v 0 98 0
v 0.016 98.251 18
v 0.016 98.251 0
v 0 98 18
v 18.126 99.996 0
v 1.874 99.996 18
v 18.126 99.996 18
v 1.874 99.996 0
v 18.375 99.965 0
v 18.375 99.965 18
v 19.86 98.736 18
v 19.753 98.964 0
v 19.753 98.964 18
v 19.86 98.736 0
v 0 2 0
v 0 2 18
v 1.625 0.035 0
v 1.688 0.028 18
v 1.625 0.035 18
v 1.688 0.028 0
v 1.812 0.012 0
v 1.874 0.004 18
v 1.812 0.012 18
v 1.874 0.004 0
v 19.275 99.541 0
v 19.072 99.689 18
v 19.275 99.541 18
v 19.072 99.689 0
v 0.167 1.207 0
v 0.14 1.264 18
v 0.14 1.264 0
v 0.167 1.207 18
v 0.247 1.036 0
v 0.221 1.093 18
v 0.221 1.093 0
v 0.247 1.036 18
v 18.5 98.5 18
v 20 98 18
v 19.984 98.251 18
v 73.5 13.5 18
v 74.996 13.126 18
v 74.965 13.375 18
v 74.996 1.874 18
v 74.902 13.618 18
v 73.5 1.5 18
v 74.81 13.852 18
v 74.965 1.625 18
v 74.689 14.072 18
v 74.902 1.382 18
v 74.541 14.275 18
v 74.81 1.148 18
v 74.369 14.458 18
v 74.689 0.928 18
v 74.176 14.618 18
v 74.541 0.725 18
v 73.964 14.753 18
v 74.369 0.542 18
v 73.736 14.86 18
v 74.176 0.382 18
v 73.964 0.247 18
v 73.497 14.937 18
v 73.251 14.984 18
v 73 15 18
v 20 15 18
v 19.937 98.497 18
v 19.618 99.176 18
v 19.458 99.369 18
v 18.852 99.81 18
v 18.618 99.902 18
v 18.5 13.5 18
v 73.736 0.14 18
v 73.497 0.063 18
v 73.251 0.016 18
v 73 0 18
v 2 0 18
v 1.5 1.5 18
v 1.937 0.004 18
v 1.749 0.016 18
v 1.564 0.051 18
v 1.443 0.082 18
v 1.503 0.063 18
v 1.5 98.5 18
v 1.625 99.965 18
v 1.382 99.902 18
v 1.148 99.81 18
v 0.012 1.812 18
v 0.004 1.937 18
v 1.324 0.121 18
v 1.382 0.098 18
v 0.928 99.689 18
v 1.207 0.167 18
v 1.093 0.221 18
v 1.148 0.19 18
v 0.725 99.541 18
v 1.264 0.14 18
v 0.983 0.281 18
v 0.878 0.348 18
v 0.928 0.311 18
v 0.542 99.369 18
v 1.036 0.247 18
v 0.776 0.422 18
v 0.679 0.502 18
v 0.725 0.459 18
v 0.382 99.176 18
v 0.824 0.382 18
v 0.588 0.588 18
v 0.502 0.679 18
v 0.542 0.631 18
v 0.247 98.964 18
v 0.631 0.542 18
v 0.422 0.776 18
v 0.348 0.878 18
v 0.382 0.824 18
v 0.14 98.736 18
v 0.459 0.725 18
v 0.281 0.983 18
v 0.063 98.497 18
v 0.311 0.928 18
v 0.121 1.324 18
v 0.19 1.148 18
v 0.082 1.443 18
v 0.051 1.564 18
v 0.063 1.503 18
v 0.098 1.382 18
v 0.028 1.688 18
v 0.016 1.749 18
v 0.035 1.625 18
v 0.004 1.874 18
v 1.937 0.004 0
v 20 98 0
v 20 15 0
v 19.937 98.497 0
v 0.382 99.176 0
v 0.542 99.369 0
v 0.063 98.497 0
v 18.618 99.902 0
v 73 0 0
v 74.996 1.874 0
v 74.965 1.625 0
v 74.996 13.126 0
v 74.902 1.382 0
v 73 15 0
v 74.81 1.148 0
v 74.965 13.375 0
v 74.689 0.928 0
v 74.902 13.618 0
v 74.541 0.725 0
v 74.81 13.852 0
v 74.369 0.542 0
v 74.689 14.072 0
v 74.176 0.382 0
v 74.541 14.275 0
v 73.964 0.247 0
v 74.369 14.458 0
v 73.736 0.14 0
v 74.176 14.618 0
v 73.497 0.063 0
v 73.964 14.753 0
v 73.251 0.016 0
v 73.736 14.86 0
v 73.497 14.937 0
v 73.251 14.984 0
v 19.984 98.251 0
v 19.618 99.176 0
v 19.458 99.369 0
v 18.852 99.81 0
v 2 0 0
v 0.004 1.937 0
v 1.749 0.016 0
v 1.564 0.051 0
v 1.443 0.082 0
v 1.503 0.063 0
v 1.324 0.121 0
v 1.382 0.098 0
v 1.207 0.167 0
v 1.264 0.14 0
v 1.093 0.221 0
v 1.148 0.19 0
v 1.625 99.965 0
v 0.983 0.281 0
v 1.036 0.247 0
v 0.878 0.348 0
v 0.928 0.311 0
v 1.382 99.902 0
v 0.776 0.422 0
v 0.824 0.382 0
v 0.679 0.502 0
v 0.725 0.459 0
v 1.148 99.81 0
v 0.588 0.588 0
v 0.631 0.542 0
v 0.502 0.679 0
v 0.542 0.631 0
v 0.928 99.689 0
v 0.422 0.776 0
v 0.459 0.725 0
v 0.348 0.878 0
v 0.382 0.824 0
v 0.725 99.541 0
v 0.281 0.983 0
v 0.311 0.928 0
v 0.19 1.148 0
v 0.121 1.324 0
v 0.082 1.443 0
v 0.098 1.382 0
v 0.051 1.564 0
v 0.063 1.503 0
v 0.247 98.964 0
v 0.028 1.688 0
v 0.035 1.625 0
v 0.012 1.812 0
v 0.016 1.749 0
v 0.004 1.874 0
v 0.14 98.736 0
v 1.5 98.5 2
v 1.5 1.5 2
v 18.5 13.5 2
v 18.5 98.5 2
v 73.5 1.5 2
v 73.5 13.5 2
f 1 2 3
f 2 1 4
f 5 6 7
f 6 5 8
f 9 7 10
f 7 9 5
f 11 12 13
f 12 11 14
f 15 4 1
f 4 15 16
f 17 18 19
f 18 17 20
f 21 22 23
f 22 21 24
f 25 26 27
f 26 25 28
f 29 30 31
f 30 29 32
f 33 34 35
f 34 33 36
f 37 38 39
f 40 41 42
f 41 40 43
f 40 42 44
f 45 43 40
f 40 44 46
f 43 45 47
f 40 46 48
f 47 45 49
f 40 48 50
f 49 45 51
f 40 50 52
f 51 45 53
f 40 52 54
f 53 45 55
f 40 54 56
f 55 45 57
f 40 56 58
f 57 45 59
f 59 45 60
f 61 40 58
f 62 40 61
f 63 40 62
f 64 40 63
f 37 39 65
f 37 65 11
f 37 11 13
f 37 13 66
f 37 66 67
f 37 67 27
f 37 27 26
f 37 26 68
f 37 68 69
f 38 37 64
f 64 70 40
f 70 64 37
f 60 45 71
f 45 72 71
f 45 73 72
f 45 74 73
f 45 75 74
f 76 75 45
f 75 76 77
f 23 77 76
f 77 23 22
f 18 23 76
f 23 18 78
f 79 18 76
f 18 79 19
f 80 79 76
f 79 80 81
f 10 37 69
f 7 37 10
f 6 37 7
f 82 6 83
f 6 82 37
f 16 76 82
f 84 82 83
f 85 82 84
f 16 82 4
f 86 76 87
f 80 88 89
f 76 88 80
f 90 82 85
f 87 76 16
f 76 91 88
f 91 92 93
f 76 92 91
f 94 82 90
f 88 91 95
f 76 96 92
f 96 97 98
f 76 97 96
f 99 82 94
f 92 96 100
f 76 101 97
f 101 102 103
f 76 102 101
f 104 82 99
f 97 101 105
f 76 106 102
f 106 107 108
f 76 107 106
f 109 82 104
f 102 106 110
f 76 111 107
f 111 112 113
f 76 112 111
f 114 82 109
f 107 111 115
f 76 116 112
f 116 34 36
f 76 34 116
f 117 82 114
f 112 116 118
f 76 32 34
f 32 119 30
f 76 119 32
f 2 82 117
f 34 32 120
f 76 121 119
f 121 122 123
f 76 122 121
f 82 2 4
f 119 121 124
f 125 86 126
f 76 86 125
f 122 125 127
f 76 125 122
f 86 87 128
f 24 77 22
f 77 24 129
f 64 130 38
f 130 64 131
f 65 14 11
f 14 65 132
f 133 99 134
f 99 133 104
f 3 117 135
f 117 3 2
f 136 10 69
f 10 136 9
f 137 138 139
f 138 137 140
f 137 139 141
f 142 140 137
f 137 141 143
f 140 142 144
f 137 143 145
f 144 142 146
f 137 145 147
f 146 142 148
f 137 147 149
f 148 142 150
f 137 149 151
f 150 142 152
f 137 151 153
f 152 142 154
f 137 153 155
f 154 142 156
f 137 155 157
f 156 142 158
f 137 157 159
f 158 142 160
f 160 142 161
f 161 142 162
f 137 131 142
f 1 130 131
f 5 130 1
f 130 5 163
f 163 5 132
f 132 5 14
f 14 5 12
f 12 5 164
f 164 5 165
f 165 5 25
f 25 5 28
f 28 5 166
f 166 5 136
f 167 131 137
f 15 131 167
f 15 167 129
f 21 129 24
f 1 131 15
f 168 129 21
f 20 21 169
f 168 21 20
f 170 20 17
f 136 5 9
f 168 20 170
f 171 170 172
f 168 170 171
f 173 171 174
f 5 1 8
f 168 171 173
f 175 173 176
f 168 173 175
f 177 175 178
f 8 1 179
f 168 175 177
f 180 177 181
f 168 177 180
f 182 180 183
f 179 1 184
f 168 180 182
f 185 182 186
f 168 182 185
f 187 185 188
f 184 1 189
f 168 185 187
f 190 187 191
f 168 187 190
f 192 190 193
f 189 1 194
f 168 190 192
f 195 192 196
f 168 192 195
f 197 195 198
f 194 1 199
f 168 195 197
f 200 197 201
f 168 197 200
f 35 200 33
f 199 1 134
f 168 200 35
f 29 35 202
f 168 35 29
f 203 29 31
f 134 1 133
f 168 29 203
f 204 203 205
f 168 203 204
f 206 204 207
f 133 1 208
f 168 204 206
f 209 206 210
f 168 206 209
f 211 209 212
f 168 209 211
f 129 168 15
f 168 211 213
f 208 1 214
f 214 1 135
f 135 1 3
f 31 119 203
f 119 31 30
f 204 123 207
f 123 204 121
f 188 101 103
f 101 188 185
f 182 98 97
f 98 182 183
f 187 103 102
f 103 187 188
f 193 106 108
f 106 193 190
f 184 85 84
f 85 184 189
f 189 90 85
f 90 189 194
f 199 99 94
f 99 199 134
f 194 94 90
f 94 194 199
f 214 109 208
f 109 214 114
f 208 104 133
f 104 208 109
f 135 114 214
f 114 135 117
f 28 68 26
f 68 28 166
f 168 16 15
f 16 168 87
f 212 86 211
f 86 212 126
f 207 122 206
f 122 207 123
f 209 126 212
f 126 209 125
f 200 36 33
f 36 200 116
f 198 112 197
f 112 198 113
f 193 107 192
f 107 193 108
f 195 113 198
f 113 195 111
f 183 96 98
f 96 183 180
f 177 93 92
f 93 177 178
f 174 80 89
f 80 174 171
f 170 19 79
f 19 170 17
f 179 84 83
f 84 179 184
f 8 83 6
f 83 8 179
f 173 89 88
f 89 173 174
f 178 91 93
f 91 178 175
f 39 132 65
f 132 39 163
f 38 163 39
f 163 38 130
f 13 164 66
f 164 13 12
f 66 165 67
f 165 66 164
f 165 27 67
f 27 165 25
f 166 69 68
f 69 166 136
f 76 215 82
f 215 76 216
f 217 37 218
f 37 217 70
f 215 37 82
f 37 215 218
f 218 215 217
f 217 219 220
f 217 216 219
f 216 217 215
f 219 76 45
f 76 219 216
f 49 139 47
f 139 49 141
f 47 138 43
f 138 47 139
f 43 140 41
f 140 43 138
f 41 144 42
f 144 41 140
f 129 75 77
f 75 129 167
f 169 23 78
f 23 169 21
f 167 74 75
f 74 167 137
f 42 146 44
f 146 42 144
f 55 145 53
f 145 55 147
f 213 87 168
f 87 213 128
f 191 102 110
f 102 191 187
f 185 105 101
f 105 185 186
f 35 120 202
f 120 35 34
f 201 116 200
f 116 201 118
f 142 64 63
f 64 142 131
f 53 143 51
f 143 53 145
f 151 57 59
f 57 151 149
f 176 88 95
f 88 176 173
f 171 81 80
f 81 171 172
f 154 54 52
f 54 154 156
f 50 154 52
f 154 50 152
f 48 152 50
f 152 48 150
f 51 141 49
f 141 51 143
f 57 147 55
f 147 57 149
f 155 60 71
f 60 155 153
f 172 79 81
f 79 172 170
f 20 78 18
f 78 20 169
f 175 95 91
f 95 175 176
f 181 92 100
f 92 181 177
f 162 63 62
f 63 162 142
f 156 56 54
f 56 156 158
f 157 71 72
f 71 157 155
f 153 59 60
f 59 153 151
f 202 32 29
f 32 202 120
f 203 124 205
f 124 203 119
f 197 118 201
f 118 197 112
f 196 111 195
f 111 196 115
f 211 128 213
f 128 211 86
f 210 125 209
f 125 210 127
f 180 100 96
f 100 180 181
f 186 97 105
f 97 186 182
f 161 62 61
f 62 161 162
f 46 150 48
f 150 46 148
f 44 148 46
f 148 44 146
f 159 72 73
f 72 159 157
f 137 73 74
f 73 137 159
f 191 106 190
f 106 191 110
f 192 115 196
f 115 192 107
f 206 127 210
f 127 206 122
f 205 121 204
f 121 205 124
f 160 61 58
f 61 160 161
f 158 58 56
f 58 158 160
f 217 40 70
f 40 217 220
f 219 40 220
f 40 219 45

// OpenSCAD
length1 = 20;
length2 = 15;
width1 = 100;
width2 = 75;
height = 18;
floorThickness = 2;
wallThickness = 1.5;
difference() {
    union() {
        difference() {    
            $fn=50;
            minkowski()
            {
              translate([2,2,0])
                cube([length1-4, width1-4, height - 1]);
              cylinder(r=2,h=1);
            }
            
            //cube([length, width, height]);
            translate([wallThickness, wallThickness, floorThickness])
                cube([length1 - wallThickness * 2, width1 - wallThickness * 2, height - floorThickness]);
        }
        translate([0, length2, 0]) {
            rotate([0, 0, 270]) {
                difference() {    
                    $fn=50;
                    minkowski()
                    {
                      translate([2,2,0])
                        cube([length2-4, width2-4, height - 1]);
                      cylinder(r=2,h=1);
                    }
                    
                    //cube([length, width, height]);
                    translate([wallThickness, wallThickness, floorThickness])
                        cube([length2 - wallThickness * 2, width2 - wallThickness * 2, height - floorThickness]);
                }
            }
        }
    }
    translate([length1 - wallThickness, wallThickness, floorThickness])
        cube([wallThickness, length2 - wallThickness * 2, height - floorThickness]);
    translate([wallThickness, length2 - wallThickness, floorThickness])
        cube([length1 - wallThickness * 2, wallThickness, height - floorThickness]);
}
